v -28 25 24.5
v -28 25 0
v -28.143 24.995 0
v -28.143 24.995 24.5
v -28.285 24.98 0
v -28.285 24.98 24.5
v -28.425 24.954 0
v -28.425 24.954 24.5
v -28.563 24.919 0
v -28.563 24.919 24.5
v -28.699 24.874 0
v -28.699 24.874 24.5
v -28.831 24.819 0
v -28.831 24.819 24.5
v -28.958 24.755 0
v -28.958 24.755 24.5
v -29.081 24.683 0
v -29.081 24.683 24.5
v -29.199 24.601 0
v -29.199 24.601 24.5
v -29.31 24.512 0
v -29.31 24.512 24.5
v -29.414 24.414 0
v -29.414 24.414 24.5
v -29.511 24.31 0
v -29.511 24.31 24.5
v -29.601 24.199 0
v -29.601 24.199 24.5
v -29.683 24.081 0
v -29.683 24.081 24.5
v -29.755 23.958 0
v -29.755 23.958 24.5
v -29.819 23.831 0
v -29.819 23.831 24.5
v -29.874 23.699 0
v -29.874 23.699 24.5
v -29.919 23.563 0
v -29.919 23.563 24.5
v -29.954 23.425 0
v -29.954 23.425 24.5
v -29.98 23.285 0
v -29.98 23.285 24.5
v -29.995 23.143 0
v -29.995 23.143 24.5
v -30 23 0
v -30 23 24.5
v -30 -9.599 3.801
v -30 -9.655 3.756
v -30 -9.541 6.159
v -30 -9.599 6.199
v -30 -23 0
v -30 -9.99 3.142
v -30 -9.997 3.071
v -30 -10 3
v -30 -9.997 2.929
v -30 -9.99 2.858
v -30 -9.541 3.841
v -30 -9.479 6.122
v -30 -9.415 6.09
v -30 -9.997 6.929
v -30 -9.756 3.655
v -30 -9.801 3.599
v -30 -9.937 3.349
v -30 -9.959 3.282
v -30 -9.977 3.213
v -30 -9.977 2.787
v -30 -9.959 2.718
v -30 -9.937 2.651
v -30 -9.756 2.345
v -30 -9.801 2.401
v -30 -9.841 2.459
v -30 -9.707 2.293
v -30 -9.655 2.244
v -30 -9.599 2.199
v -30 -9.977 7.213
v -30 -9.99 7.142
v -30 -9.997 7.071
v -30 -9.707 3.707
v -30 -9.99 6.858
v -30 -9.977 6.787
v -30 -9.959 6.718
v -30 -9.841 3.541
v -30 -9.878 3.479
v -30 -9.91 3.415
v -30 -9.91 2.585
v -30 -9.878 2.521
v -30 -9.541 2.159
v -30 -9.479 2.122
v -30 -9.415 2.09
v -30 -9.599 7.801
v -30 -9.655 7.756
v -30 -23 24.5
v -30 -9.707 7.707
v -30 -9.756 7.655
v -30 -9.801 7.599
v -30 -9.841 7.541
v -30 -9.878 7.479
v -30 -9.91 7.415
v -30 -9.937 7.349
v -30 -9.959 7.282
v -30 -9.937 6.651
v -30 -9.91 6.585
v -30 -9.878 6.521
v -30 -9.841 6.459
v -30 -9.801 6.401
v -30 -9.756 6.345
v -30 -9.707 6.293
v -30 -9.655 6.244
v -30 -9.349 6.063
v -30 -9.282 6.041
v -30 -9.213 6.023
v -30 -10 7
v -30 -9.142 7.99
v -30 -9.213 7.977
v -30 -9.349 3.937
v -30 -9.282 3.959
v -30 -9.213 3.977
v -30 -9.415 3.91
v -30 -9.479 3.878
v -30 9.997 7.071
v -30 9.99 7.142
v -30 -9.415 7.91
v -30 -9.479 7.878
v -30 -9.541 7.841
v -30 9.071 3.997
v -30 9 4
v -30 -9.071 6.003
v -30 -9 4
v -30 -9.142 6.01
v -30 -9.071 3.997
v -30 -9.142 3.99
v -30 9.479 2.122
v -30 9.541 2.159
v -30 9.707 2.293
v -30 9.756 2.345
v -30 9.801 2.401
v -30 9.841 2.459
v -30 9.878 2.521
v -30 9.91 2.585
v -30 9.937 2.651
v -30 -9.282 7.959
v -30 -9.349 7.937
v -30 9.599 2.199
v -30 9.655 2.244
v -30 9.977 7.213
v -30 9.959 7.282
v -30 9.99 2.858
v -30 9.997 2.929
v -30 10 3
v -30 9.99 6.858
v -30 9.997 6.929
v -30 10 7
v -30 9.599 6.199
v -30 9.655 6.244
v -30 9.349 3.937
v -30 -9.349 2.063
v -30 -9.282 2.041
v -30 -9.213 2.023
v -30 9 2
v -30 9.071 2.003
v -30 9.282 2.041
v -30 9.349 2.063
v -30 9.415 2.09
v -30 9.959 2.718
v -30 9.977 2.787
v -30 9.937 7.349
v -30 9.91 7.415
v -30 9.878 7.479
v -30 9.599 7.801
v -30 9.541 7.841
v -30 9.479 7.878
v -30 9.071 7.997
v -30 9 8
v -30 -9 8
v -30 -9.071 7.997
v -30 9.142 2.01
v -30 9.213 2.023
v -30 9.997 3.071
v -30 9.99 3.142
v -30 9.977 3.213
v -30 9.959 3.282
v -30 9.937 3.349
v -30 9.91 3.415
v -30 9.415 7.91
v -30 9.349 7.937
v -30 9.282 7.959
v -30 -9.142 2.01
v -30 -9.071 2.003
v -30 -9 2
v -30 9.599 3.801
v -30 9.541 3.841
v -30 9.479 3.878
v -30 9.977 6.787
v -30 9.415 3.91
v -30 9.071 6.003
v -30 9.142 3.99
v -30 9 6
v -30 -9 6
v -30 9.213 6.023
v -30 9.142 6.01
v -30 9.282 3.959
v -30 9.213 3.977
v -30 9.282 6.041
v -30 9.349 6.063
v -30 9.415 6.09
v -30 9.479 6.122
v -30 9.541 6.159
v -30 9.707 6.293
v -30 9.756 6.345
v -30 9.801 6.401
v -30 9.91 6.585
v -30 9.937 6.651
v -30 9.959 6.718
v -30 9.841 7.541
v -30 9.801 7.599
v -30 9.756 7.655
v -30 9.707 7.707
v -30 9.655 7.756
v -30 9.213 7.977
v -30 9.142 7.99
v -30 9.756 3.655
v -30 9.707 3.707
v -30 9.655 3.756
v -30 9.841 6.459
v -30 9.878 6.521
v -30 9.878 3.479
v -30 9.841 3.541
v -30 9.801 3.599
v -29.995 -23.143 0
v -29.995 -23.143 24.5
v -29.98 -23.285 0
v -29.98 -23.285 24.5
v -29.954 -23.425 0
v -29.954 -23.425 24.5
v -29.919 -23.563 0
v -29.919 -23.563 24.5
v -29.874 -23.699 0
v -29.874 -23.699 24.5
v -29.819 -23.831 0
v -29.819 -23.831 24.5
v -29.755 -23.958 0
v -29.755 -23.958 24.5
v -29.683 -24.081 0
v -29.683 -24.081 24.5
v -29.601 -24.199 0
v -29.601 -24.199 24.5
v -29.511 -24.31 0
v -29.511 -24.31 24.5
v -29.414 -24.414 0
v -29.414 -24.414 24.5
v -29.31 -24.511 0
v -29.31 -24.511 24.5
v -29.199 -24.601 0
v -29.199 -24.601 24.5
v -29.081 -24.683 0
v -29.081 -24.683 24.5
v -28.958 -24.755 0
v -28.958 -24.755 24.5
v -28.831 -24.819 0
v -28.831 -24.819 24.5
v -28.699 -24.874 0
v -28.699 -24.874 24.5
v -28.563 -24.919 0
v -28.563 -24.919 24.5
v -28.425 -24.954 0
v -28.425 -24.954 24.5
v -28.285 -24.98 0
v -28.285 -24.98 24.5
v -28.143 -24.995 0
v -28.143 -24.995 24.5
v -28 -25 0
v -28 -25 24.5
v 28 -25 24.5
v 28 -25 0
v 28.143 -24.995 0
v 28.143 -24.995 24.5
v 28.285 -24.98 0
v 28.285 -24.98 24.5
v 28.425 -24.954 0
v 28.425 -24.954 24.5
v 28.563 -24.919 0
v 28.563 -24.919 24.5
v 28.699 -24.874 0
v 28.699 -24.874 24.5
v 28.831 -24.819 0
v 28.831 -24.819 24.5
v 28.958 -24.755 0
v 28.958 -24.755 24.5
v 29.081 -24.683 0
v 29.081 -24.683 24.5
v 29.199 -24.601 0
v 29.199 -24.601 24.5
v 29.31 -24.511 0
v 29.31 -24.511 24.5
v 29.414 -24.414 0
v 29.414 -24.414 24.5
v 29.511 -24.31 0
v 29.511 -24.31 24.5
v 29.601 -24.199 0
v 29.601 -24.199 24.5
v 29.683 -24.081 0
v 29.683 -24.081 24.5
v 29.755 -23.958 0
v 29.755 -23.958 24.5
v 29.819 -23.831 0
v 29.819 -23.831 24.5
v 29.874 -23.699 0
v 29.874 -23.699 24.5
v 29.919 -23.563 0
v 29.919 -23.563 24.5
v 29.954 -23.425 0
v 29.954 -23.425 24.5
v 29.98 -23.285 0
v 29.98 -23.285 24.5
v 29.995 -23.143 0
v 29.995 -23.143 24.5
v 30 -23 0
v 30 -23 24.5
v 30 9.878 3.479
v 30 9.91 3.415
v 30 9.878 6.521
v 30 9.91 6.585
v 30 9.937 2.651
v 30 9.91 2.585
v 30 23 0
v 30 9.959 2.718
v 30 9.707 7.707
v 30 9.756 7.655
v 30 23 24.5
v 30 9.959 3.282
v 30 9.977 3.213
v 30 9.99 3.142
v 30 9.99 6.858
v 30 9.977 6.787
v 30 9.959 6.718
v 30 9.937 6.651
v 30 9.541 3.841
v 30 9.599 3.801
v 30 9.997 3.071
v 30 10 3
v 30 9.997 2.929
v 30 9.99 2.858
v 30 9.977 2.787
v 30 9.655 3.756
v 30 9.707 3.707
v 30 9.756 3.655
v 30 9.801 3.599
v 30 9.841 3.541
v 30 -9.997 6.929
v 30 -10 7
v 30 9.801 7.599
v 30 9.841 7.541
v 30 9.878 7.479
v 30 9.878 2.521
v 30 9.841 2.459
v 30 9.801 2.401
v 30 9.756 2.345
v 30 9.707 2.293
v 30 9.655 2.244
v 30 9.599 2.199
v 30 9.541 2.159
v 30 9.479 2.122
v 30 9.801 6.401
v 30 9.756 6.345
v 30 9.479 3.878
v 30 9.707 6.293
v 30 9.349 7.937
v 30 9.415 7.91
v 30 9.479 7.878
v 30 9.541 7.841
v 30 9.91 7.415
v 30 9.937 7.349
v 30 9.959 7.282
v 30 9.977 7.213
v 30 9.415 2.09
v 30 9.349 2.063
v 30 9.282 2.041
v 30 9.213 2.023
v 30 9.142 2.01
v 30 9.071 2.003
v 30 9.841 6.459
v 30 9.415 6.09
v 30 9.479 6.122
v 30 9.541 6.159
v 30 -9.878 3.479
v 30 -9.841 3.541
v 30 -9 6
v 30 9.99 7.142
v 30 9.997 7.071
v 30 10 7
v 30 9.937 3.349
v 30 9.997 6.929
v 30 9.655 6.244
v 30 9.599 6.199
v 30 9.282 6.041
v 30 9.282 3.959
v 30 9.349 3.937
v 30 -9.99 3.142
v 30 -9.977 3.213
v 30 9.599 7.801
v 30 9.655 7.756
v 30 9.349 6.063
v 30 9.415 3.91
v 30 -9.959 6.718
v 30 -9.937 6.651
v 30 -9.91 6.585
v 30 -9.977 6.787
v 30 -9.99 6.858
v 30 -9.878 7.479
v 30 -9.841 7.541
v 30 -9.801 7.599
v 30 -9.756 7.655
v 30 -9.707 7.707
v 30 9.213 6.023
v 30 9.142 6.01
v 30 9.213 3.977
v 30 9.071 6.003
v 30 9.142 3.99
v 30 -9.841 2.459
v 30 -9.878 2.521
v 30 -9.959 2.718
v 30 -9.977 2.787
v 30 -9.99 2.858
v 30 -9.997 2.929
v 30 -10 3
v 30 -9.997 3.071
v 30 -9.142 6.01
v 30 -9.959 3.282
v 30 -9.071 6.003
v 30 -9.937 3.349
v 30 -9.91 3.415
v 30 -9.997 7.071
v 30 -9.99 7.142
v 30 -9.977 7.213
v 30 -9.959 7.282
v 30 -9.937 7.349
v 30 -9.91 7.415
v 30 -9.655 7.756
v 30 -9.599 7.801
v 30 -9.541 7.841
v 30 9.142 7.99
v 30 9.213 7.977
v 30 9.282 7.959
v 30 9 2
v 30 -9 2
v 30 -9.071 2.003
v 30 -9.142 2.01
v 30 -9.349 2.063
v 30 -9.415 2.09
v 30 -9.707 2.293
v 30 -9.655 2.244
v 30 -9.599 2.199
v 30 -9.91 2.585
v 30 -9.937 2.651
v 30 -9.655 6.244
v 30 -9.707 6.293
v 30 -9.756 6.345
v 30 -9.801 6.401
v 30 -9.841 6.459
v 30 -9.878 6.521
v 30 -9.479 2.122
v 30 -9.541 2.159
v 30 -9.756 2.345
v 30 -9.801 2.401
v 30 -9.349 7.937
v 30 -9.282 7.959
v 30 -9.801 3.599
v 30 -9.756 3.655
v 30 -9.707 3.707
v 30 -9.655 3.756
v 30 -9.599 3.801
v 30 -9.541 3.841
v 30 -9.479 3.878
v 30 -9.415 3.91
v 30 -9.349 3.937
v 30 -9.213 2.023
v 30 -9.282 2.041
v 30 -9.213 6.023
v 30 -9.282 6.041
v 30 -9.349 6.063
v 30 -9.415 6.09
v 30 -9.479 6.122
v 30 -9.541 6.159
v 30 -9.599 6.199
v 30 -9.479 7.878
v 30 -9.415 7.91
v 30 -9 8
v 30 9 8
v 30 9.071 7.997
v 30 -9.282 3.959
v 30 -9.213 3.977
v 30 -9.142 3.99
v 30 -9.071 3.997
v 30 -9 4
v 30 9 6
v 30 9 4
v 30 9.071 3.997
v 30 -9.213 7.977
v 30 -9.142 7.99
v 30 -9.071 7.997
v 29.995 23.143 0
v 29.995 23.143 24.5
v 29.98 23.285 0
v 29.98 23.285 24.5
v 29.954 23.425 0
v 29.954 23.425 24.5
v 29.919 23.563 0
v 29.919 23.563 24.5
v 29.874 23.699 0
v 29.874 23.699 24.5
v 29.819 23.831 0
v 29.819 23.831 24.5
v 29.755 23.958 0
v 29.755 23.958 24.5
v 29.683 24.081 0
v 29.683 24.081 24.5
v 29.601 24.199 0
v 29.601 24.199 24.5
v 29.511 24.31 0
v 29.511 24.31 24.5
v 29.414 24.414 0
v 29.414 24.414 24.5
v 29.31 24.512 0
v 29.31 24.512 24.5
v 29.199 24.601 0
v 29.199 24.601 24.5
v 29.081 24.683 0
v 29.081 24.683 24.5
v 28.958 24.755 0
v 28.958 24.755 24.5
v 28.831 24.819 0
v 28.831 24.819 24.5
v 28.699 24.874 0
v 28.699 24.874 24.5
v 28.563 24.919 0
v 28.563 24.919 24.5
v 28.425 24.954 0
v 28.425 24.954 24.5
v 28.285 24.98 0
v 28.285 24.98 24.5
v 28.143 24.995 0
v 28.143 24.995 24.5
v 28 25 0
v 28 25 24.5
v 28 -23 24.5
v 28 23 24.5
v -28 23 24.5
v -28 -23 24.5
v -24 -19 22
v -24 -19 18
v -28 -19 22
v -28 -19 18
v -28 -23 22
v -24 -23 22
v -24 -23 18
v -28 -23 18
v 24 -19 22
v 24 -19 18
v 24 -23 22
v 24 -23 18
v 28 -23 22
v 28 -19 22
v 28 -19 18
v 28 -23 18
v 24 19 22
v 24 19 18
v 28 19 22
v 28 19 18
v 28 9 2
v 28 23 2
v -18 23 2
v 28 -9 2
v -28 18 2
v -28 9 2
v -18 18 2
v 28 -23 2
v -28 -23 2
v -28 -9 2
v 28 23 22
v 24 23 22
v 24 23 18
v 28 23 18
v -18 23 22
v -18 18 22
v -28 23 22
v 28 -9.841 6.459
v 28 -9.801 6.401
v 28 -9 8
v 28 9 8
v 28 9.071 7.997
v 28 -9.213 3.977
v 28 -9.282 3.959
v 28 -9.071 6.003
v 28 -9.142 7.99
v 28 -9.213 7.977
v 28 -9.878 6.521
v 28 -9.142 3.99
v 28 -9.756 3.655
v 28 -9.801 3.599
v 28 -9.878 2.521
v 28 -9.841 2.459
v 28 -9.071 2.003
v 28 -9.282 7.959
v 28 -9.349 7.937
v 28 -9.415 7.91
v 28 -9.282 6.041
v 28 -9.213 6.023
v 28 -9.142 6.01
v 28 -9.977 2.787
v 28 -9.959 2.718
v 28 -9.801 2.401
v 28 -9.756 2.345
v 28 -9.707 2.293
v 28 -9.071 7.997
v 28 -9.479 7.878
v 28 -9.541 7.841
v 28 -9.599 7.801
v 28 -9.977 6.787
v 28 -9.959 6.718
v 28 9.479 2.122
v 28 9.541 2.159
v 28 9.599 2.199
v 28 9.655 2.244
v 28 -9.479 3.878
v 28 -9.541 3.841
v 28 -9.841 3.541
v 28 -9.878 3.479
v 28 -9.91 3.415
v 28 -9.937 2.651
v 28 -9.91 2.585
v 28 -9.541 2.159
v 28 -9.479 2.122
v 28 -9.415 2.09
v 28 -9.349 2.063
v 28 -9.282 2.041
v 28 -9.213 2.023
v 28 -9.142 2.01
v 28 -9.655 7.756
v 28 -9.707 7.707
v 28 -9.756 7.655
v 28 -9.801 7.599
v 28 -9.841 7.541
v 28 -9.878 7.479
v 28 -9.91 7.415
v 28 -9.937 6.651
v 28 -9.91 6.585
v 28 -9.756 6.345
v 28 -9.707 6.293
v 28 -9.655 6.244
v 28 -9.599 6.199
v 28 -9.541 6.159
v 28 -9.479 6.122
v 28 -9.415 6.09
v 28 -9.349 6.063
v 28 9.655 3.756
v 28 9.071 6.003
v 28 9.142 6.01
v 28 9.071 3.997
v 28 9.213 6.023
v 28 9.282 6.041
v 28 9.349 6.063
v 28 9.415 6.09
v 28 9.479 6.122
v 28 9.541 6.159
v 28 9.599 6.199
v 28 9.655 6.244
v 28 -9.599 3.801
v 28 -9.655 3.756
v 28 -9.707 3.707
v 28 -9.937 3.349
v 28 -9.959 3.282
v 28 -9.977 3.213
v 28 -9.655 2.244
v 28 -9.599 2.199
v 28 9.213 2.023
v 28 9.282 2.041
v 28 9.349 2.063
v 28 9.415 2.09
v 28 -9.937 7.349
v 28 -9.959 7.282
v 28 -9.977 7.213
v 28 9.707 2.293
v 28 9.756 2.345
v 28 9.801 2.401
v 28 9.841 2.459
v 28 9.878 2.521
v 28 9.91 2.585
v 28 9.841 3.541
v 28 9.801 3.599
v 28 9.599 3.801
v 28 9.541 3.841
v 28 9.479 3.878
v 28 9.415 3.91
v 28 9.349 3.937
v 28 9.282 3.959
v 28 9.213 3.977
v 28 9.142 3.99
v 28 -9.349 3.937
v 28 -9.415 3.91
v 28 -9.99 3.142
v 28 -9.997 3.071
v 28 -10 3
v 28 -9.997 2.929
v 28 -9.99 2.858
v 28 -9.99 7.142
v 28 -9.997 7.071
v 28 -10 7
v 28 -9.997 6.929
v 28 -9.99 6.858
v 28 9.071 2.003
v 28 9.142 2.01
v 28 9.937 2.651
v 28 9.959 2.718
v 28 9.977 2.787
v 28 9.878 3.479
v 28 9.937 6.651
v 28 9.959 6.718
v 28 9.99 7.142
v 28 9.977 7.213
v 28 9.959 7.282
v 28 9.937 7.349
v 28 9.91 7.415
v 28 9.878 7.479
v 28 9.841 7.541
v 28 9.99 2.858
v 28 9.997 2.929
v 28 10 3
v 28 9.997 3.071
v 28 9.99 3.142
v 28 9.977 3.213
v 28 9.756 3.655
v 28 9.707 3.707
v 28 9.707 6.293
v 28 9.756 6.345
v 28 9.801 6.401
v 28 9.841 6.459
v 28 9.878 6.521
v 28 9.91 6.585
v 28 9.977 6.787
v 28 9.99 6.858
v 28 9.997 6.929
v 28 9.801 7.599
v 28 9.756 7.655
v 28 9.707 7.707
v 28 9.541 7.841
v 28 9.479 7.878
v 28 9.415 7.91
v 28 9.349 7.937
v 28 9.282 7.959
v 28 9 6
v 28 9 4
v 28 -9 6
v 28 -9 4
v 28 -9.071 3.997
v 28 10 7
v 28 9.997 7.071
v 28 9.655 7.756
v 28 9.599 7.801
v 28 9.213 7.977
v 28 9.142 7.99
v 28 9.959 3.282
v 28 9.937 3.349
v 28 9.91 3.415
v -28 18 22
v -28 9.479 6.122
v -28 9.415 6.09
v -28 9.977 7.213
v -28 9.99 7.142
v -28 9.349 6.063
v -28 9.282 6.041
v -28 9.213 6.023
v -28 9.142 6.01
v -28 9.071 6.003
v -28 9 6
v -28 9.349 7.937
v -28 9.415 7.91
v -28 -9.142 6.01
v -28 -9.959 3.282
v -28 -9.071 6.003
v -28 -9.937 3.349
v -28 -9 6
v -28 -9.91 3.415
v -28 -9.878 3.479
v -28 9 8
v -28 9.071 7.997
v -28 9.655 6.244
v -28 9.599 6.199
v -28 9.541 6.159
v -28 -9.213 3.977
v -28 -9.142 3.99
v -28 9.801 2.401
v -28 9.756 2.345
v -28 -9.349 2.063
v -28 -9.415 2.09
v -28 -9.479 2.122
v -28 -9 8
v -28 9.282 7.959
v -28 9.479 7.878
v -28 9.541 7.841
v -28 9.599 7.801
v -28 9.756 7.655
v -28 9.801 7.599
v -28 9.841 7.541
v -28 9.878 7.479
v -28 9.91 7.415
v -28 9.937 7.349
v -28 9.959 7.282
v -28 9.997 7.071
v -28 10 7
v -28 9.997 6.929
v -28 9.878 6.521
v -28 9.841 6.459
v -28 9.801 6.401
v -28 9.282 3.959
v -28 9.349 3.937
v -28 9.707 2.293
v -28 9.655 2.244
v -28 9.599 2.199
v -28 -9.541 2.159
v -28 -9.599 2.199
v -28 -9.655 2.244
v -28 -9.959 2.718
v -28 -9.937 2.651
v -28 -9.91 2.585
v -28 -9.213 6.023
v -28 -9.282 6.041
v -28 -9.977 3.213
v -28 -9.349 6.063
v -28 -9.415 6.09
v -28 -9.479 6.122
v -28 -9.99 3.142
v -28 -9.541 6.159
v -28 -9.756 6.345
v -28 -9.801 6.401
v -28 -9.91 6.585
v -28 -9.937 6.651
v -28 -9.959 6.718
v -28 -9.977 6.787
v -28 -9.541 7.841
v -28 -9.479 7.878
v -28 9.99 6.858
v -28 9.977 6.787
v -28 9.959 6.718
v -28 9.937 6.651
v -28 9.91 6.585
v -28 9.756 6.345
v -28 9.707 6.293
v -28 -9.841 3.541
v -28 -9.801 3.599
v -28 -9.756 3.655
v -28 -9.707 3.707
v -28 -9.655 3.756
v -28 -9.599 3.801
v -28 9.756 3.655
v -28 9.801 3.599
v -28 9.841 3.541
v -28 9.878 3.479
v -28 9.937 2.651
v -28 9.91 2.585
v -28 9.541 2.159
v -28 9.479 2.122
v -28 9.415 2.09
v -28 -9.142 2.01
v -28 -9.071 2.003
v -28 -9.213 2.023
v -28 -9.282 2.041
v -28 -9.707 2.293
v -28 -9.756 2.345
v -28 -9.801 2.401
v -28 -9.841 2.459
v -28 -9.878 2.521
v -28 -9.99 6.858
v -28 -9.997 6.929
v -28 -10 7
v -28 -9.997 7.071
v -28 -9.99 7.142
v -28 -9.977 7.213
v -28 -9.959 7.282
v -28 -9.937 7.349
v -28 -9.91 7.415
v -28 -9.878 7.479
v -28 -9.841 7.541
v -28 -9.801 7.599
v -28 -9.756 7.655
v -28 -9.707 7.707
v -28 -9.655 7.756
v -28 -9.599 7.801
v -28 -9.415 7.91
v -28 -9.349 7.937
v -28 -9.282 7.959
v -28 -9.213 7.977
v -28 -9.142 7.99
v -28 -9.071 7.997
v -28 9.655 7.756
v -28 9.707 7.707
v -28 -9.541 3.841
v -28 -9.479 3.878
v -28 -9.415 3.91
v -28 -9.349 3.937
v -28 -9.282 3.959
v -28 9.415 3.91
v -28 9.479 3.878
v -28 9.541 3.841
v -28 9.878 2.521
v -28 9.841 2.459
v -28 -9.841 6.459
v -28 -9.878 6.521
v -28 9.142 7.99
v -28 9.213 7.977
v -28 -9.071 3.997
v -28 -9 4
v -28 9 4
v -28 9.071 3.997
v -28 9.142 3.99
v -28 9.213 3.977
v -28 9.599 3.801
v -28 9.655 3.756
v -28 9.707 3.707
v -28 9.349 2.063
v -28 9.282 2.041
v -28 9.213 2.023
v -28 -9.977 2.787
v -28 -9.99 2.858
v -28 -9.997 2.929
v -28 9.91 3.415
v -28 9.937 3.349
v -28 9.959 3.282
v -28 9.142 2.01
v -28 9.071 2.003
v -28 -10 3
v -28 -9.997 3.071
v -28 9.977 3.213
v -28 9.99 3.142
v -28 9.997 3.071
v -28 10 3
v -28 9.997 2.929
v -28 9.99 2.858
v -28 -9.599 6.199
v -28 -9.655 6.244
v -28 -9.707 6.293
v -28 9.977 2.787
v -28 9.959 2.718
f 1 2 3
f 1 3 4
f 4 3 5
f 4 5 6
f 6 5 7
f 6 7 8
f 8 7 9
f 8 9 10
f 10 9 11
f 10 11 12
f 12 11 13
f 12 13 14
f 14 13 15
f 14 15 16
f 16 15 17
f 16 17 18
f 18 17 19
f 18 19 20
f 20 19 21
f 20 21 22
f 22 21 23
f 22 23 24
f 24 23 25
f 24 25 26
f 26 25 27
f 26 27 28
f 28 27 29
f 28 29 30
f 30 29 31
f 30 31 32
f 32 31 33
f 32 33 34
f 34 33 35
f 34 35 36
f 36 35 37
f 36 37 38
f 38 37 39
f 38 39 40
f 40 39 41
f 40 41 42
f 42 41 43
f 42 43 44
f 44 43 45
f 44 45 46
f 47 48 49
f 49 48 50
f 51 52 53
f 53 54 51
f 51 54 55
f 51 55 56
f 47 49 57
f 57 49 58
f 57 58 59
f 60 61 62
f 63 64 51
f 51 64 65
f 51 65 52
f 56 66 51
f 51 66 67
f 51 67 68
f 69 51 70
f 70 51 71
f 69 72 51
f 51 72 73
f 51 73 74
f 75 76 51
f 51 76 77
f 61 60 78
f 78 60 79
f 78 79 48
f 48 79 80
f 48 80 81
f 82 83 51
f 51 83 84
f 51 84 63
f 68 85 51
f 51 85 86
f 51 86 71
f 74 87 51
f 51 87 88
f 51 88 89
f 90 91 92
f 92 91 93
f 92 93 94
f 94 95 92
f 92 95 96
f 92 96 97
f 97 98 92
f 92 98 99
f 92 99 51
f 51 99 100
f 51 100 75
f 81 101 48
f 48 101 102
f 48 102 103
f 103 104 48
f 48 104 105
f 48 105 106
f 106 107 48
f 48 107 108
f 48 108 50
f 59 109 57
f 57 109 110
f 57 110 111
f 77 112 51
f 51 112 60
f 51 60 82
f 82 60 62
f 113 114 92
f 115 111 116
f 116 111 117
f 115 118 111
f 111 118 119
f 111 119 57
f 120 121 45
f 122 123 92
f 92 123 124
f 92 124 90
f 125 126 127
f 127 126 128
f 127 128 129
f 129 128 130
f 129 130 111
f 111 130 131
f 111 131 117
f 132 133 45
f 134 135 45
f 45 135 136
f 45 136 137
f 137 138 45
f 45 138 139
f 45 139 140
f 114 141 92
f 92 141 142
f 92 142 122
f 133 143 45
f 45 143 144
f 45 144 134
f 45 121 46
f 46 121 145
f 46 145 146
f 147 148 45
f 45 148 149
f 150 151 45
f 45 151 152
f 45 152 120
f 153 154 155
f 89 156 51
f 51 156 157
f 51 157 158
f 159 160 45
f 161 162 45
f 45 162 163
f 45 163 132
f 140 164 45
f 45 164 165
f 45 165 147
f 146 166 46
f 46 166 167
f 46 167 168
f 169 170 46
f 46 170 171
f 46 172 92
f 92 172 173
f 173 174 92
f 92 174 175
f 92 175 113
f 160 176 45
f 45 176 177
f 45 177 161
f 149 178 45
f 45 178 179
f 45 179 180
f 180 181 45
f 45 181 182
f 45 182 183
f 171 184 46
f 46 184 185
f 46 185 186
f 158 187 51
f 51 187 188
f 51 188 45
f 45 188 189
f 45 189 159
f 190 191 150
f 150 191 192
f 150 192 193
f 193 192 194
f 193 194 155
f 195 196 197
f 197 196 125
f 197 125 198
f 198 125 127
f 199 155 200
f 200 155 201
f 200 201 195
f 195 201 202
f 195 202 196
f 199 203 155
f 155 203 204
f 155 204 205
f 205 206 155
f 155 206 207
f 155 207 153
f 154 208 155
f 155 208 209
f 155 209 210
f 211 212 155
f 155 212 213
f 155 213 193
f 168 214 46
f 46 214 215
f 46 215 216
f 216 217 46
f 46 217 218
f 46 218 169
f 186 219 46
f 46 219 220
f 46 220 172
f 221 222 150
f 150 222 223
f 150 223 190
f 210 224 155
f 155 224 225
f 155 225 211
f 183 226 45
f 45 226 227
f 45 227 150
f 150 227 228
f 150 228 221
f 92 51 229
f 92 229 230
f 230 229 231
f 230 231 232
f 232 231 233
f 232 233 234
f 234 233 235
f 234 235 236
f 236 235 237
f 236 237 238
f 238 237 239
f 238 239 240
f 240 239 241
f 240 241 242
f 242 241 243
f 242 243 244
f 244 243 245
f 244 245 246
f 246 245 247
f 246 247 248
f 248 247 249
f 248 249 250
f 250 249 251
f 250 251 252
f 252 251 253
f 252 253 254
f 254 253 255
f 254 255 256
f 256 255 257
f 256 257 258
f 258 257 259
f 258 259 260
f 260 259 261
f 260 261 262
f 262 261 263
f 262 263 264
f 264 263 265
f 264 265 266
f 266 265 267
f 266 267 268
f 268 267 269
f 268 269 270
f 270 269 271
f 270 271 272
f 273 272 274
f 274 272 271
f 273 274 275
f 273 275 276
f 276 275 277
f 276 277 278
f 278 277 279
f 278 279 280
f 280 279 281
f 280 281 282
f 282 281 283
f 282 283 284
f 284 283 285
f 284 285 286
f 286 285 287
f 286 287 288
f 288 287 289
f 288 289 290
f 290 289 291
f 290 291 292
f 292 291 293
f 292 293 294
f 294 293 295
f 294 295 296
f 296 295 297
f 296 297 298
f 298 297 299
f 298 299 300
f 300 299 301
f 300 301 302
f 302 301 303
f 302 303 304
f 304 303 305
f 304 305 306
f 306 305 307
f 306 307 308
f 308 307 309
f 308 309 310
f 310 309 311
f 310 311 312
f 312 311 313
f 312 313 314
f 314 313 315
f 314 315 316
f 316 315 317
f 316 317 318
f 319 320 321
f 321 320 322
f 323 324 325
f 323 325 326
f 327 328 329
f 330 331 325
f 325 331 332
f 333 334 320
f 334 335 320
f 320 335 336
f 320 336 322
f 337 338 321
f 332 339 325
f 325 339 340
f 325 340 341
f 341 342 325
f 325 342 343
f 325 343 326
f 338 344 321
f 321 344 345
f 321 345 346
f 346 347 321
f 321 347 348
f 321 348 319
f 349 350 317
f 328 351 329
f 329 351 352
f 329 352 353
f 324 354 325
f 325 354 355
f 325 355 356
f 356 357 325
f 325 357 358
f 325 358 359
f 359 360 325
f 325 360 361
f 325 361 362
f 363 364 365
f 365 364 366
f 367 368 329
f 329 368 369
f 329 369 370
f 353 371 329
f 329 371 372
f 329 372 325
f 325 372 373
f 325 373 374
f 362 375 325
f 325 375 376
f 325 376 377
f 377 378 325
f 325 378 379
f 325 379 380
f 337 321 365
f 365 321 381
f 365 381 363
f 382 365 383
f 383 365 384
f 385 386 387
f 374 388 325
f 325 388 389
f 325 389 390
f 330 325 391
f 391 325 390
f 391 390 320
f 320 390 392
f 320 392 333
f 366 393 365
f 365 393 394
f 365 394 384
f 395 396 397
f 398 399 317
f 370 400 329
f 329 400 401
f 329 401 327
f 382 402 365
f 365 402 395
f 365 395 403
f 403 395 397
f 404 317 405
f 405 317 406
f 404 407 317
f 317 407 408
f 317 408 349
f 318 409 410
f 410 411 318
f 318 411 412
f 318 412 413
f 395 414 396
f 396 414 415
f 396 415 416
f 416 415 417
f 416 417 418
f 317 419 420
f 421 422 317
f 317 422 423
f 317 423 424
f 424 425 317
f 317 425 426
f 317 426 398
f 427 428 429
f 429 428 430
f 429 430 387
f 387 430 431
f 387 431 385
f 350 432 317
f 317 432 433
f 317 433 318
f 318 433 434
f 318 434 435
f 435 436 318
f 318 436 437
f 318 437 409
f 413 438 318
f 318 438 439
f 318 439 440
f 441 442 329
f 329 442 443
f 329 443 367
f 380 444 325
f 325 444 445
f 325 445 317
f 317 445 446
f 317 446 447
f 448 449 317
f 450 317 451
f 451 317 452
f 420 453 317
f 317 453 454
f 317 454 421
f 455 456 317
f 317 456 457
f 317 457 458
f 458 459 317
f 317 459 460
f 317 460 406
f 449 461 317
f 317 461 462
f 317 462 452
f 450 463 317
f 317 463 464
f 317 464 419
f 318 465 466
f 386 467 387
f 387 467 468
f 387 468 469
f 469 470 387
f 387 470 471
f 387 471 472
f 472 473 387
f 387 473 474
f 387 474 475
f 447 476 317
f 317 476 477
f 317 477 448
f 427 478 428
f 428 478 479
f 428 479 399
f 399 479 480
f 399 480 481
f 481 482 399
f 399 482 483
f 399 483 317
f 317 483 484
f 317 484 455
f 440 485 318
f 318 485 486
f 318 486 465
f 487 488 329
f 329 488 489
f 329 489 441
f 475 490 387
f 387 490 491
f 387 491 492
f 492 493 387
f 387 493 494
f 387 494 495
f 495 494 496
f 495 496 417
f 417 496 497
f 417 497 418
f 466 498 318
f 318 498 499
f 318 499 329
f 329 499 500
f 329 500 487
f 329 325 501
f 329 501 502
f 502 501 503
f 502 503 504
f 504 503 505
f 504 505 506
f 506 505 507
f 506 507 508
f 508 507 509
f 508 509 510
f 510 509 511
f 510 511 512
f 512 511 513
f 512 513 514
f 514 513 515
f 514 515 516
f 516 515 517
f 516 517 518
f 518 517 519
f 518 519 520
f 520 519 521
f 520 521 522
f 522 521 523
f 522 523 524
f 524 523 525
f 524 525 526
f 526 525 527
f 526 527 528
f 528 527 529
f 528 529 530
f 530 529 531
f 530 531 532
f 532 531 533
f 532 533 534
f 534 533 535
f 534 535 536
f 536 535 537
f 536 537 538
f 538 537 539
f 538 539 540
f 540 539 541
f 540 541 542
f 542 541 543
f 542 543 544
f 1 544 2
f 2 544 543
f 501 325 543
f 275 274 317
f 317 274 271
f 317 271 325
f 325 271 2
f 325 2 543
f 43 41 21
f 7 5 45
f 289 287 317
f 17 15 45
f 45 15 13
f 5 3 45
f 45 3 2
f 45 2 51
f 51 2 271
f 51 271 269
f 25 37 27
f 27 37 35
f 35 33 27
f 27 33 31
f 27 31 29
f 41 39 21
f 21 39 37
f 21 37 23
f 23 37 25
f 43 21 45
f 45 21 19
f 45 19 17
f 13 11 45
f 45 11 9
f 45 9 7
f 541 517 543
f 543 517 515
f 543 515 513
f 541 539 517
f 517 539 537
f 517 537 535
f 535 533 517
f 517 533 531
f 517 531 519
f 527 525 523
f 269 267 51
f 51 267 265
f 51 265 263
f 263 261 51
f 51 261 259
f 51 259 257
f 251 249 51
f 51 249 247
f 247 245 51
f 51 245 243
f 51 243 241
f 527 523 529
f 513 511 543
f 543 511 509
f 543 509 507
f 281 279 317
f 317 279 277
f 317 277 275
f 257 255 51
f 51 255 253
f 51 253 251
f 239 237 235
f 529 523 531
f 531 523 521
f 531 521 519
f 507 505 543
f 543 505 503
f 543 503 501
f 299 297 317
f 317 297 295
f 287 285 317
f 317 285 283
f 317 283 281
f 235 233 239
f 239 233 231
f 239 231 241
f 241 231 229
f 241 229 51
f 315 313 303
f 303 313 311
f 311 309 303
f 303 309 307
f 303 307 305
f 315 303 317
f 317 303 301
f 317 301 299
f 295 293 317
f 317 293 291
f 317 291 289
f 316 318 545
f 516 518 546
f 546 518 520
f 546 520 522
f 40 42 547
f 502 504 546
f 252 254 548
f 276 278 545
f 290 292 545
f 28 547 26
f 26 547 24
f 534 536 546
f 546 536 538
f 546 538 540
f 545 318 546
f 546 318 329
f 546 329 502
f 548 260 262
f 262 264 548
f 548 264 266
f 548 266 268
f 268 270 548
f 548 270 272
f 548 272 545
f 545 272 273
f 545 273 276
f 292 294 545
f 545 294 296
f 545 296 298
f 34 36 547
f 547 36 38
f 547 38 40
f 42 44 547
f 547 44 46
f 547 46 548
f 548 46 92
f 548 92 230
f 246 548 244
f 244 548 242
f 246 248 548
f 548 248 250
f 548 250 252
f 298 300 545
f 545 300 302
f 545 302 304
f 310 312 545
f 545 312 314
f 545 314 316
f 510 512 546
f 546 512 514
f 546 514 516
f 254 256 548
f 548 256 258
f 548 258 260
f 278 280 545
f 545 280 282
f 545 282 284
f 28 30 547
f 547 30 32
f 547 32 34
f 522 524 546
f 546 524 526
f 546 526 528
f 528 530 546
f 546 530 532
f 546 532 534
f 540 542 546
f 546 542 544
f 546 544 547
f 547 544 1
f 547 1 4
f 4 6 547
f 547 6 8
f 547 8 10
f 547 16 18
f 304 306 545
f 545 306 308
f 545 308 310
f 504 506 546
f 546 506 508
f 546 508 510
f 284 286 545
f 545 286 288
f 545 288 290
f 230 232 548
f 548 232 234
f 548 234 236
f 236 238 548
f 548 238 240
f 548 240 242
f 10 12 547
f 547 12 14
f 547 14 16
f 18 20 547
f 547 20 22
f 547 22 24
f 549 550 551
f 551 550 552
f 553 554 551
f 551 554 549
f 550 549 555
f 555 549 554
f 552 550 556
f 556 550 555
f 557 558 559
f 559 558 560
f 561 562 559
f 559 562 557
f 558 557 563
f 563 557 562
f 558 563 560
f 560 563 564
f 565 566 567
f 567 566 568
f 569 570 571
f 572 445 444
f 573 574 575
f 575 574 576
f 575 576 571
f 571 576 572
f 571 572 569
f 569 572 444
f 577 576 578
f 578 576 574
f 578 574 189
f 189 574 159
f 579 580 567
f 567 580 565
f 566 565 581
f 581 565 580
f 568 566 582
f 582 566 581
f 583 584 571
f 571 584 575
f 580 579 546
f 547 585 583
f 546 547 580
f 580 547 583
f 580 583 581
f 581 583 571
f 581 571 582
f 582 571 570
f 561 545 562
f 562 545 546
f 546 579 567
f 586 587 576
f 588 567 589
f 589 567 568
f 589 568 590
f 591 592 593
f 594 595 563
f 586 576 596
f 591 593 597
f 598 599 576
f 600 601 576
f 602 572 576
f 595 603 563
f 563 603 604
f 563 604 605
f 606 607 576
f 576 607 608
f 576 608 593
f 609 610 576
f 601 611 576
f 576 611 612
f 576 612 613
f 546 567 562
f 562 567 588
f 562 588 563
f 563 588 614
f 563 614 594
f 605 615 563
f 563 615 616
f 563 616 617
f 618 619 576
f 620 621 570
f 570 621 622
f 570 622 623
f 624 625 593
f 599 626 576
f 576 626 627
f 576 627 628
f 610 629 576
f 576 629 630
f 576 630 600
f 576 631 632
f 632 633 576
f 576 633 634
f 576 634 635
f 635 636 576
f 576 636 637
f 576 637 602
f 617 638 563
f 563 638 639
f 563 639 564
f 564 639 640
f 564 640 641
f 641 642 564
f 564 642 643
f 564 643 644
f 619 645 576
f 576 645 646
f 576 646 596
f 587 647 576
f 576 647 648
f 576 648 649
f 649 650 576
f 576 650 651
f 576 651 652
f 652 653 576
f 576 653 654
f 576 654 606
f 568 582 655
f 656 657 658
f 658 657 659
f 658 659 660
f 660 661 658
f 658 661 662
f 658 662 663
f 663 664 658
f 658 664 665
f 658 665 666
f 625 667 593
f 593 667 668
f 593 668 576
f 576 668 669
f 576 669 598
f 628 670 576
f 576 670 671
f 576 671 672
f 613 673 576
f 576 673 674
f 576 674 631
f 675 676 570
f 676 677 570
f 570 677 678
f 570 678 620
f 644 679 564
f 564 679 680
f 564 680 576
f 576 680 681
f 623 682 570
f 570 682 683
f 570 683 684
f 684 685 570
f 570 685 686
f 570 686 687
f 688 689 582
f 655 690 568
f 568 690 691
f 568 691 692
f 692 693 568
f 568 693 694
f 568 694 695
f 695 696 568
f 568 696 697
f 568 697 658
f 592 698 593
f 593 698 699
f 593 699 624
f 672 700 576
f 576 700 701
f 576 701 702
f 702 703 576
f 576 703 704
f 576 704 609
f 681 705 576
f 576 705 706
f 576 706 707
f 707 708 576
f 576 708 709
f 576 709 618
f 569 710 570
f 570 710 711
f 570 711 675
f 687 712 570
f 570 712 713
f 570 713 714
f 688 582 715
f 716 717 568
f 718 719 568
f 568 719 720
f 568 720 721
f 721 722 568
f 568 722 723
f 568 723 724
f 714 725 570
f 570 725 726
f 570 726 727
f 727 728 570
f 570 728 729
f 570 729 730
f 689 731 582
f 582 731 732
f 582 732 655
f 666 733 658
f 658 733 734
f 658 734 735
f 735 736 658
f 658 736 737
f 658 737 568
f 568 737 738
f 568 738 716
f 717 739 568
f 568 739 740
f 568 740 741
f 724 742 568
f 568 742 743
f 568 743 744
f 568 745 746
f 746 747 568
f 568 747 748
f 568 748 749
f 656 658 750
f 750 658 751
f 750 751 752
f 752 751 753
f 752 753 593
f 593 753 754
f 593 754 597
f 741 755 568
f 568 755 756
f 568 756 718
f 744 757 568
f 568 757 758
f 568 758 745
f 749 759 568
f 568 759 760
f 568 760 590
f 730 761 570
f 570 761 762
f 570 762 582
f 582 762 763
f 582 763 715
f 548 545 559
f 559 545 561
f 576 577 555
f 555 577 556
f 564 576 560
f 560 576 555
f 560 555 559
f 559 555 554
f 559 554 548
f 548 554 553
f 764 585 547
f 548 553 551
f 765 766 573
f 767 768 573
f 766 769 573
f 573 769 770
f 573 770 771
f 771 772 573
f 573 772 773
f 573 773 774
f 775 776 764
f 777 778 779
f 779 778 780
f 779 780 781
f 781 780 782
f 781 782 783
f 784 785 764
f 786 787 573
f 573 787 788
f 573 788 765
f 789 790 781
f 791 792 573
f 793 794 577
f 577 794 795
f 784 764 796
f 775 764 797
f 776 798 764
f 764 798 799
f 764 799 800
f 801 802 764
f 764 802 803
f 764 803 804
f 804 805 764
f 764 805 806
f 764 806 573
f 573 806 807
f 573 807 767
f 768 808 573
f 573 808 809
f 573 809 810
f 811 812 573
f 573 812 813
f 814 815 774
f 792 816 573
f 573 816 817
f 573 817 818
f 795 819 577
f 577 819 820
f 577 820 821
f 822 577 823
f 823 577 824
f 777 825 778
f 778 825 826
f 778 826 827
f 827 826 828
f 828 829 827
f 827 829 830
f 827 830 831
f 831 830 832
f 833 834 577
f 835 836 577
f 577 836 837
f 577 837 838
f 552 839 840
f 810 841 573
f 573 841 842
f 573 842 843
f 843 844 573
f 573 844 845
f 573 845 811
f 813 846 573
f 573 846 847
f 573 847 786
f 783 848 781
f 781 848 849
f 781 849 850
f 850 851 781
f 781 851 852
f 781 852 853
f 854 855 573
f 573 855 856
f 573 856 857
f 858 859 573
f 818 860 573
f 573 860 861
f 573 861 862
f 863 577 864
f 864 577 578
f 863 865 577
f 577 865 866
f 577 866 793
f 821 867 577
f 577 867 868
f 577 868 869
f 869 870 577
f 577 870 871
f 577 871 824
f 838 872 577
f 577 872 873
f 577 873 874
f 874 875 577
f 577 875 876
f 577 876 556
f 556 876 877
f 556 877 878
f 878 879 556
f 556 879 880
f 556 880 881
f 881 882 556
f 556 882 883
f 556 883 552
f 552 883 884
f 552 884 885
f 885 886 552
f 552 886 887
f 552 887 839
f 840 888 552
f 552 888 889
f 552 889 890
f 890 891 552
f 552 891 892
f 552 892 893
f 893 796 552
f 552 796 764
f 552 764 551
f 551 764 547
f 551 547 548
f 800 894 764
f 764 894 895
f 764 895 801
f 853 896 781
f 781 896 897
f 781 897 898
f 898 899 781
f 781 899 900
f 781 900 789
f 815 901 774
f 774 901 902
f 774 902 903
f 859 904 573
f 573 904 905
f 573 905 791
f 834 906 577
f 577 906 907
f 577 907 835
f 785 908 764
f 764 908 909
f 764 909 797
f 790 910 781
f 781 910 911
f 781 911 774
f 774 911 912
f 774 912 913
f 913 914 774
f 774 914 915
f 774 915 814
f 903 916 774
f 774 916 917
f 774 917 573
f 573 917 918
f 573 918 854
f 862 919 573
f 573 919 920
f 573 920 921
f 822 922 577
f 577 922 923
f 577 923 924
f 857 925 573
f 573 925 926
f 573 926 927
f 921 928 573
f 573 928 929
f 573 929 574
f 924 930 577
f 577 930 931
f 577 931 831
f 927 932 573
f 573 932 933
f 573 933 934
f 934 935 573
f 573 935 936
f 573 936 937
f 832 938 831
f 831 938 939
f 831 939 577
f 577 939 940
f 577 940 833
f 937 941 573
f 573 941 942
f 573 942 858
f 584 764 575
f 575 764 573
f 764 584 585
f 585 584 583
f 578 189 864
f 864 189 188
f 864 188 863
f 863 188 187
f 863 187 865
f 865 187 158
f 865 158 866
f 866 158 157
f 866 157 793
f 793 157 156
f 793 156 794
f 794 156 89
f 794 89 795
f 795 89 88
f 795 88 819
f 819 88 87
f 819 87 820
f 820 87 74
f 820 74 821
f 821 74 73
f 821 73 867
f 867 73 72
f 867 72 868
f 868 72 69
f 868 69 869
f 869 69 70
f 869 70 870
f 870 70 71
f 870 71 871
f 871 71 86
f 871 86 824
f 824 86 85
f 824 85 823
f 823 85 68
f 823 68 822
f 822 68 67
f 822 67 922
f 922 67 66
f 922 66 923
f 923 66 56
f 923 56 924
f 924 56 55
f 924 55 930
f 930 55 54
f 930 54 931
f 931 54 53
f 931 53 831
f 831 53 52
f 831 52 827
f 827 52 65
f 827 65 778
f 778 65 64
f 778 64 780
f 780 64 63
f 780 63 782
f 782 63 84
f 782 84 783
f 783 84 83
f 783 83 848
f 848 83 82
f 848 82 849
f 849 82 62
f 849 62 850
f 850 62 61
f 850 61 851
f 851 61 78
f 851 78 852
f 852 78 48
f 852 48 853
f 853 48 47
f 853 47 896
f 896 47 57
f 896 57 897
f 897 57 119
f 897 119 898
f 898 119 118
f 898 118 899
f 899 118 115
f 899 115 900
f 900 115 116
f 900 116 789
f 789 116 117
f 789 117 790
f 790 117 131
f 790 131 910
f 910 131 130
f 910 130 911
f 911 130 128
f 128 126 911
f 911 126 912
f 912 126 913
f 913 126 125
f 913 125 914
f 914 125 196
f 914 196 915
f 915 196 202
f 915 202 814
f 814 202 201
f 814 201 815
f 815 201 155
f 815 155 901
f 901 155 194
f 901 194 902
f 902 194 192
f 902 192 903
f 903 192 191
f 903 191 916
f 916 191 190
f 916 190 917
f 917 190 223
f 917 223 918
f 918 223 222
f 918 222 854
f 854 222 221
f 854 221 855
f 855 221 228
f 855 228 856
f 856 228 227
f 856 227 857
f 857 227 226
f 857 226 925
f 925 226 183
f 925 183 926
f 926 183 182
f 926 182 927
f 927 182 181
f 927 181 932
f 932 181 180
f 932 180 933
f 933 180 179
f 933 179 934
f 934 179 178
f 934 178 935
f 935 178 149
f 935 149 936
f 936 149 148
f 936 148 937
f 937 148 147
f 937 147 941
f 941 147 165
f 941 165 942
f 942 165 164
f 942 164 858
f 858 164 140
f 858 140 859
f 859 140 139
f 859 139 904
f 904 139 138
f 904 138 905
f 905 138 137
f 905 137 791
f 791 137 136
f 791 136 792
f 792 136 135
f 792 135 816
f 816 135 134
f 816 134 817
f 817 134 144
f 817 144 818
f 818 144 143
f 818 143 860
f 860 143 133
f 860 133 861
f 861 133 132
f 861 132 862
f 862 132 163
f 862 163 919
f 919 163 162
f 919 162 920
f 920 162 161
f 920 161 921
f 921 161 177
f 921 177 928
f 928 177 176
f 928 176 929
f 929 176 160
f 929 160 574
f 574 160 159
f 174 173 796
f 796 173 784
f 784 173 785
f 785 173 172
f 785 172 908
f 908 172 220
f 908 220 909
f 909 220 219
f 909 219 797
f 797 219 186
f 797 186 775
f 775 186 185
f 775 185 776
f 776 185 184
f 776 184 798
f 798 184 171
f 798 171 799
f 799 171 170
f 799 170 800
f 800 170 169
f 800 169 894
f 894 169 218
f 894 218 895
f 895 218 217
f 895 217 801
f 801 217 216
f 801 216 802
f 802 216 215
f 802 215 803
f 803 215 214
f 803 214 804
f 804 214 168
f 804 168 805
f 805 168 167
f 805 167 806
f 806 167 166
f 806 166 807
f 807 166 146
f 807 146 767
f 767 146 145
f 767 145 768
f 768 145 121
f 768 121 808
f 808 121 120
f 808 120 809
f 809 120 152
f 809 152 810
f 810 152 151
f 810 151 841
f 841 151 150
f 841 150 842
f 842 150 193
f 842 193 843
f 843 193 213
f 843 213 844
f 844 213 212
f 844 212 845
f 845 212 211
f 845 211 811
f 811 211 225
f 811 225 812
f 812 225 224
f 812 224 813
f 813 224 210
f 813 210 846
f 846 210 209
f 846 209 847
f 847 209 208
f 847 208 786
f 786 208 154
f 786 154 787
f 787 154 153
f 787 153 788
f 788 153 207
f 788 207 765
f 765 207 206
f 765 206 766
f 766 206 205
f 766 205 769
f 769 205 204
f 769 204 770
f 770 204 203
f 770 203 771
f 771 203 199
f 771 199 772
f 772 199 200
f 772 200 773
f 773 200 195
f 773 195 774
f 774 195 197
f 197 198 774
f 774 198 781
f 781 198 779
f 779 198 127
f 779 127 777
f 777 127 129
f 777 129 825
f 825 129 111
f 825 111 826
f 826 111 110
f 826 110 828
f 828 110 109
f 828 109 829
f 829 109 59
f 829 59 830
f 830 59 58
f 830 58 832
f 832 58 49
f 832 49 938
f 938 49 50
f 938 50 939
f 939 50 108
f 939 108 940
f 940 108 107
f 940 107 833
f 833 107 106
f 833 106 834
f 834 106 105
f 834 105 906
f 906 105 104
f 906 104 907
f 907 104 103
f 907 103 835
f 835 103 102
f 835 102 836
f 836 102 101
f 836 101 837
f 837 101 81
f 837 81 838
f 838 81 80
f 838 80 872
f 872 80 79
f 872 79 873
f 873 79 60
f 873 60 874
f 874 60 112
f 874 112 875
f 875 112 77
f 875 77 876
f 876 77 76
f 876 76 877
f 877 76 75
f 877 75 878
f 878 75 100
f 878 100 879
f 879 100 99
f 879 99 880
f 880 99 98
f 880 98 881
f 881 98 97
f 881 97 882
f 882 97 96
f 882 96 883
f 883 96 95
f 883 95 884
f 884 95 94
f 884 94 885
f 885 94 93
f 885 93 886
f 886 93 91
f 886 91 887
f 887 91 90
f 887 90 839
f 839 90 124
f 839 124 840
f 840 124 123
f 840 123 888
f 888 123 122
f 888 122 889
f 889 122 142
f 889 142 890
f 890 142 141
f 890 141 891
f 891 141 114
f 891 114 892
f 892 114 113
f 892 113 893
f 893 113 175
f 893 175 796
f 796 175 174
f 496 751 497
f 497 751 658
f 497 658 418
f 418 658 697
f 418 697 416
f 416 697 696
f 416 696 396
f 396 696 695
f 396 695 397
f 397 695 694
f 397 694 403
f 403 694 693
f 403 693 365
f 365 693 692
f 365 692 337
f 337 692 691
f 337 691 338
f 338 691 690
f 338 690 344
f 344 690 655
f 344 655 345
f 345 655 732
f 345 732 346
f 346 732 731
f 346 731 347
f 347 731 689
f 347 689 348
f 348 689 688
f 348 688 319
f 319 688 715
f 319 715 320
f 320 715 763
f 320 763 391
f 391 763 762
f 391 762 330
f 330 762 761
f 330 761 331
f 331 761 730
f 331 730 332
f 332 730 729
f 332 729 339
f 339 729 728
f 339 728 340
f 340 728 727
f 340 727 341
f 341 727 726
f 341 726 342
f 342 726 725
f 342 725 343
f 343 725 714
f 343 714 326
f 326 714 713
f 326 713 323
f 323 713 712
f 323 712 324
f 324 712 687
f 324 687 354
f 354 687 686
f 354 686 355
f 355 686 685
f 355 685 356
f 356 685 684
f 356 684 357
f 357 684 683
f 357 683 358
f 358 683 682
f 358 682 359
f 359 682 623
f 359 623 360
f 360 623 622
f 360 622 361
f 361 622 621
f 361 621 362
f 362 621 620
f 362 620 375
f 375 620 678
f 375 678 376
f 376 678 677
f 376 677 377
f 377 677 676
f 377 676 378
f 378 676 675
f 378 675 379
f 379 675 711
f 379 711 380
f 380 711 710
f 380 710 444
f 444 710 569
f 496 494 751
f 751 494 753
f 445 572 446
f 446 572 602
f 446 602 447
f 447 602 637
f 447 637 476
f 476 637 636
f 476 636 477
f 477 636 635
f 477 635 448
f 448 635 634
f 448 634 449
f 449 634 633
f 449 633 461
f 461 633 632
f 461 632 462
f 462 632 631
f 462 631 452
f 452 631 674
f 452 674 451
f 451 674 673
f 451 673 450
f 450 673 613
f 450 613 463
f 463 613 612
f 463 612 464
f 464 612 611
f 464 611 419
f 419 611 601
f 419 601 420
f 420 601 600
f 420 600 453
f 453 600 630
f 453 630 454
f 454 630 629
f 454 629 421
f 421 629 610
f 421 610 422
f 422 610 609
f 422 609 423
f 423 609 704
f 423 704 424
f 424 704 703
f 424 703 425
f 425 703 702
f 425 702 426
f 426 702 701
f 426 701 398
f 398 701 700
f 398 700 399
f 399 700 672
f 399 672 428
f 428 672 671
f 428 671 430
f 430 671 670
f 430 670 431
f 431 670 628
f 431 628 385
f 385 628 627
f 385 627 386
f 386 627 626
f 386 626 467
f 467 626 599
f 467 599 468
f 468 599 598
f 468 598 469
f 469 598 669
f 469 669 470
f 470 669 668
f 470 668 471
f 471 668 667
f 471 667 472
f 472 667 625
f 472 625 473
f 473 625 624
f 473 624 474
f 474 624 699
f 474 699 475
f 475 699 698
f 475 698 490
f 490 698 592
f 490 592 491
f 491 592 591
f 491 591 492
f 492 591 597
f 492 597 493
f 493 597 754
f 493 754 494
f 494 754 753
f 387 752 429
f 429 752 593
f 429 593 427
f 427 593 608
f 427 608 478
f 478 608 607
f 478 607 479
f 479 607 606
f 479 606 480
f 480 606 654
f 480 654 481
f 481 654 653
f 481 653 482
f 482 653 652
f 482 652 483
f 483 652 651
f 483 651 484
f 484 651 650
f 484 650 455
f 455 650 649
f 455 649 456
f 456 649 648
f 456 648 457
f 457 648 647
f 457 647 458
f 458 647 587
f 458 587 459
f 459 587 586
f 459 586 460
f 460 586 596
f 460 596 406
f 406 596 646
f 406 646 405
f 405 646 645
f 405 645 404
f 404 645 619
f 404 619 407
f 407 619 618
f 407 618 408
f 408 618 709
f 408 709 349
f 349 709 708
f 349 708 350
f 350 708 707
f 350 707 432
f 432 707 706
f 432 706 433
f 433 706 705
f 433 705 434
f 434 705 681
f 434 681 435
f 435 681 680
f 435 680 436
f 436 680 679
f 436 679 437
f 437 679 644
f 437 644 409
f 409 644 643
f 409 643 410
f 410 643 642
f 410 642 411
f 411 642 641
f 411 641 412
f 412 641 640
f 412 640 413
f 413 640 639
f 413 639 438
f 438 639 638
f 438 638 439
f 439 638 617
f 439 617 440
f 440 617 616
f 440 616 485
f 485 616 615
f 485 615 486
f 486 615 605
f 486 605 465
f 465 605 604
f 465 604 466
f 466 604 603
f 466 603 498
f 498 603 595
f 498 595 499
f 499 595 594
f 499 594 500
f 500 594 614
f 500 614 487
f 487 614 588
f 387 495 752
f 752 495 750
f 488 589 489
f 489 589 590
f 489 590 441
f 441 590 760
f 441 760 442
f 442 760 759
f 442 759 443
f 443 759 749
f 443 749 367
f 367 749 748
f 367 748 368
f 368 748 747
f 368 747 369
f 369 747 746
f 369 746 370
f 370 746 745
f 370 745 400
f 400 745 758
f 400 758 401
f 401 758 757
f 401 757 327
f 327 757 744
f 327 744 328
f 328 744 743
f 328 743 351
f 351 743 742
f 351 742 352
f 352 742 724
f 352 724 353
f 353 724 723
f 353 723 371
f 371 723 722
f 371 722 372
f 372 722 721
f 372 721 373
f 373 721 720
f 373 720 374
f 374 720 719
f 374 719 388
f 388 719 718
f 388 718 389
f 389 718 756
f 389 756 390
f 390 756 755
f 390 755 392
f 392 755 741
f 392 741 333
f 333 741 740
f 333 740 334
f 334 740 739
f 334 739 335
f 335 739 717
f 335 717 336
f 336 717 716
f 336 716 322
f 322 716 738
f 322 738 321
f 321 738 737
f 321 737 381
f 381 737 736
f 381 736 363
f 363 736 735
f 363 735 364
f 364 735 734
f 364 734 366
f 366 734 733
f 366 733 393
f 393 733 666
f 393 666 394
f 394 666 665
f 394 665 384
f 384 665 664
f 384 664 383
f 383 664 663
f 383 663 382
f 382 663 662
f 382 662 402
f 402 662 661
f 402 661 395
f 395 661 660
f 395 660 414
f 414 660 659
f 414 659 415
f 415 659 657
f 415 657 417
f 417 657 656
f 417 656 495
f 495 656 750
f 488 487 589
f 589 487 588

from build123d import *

# Parameters (mm, degrees)
EXTRUDE_8_DEPTH     = 2
EXTRUDE_11_DEPTH    = 20
SKETCH_8_W          = 4
SKETCH_8_H          = 4
EXTRUDE_12_DEPTH    = 4
SKETCH_9_W          = 4
SKETCH_9_H          = 4
EXTRUDE_13_DEPTH    = 4
SKETCH_10_W         = 56
SKETCH_10_H         = 46
EXTRUDE_14_DEPTH    = 2.5
CUT_EXTRUDE_5_DEPTH = 60


with BuildPart() as part:
    # Эскиз1 → Бобышка-Вытянуть8 (new body)
    with BuildSketch(Plane.XY):
        with BuildLine():
            Line((-28, -25), (28, -25))
            ThreePointArc((28, -25), (29.414213562, -24.414213562), (30, -23))
            Line((30, -23), (30, 23))
            ThreePointArc((30, 23), (29.414213562, 24.414213562), (28, 25))
            Line((28, 25), (-28, 25))
            ThreePointArc((-28, 25), (-29.414213562, 24.414213562), (-30, 23))
            Line((-30, 23), (-30, -23))
            ThreePointArc((-30, -23), (-29.414213562, -24.414213562), (-28, -25))
        make_face()
    extrude(amount=EXTRUDE_8_DEPTH)

    # Эскиз6 → Бобышка-Вытянуть11 (add)
    with BuildSketch(Plane.XY.offset(2)):
        with BuildLine():
            Line((-28, 25), (28, 25))
            ThreePointArc((28, 25), (29.414213562, 24.414213562), (30, 23))
            Line((30, 23), (30, -23))
            ThreePointArc((30, -23), (29.414213562, -24.414213562), (28, -25))
            Line((28, -25), (-28, -25))
            ThreePointArc((-28, -25), (-29.414213562, -24.414213562), (-30, -23))
            Line((-30, -23), (-30, 23))
            ThreePointArc((-30, 23), (-29.414213562, 24.414213562), (-28, 25))
        make_face()
        Polygon((-28, -23), (28, -23), (28, 23), (-18, 23), (-18, 18), (-28, 18), align=None, mode=Mode.SUBTRACT)
    extrude(amount=EXTRUDE_11_DEPTH)

    # Эскиз8 → Бобышка-Вытянуть12 (add)
    with BuildSketch(Plane.XZ.offset(-23)):
        with Locations((26, 20)):
            Rectangle(SKETCH_8_W, SKETCH_8_H)
    extrude(amount=EXTRUDE_12_DEPTH)

    # Эскиз9 → Бобышка-Вытянуть13 (add)
    with BuildSketch(Plane(origin=(0, -23, 0), x_dir=(1, 0, 0), z_dir=(0, 1, 0))):
        with Locations((26, -20)):
            Rectangle(SKETCH_9_W, SKETCH_9_H)
        with Locations((-26, -20)):
            Rectangle(SKETCH_9_W, SKETCH_9_H)
    extrude(amount=EXTRUDE_13_DEPTH)

    # Эскиз10 → Бобышка-Вытянуть14 (add)
    with BuildSketch(Plane.XY.offset(22)):
        with BuildLine():
            Line((-28, 25), (28, 25))
            ThreePointArc((28, 25), (29.414213562, 24.414213562), (30, 23))
            Line((30, 23), (30, -23))
            ThreePointArc((30, -23), (29.414213562, -24.414213562), (28, -25))
            Line((28, -25), (-28, -25))
            ThreePointArc((-28, -25), (-29.414213562, -24.414213562), (-30, -23))
            Line((-30, -23), (-30, 23))
            ThreePointArc((-30, 23), (-29.414213562, 24.414213562), (-28, 25))
        make_face()
        Rectangle(SKETCH_10_W, SKETCH_10_H, mode=Mode.SUBTRACT)
    extrude(amount=EXTRUDE_14_DEPTH)

    # Эскиз15 → Вырез-Вытянуть5 (cut)
    with BuildSketch(Plane.ZY.offset(30)):
        with BuildLine():
            Line((8, 9), (8, -9))
            ThreePointArc((8, -9), (7, -10), (6, -9))
            Line((6, -9), (6, 9))
            ThreePointArc((6, 9), (7, 10), (8, 9))
        make_face()
        with BuildLine():
            Line((4, 9), (4, -9))
            ThreePointArc((4, -9), (3, -10), (2, -9))
            Line((2, -9), (2, 9))
            ThreePointArc((2, 9), (3, 10), (4, 9))
        make_face()
    extrude(amount=-CUT_EXTRUDE_5_DEPTH, mode=Mode.SUBTRACT)


solid = part.part
